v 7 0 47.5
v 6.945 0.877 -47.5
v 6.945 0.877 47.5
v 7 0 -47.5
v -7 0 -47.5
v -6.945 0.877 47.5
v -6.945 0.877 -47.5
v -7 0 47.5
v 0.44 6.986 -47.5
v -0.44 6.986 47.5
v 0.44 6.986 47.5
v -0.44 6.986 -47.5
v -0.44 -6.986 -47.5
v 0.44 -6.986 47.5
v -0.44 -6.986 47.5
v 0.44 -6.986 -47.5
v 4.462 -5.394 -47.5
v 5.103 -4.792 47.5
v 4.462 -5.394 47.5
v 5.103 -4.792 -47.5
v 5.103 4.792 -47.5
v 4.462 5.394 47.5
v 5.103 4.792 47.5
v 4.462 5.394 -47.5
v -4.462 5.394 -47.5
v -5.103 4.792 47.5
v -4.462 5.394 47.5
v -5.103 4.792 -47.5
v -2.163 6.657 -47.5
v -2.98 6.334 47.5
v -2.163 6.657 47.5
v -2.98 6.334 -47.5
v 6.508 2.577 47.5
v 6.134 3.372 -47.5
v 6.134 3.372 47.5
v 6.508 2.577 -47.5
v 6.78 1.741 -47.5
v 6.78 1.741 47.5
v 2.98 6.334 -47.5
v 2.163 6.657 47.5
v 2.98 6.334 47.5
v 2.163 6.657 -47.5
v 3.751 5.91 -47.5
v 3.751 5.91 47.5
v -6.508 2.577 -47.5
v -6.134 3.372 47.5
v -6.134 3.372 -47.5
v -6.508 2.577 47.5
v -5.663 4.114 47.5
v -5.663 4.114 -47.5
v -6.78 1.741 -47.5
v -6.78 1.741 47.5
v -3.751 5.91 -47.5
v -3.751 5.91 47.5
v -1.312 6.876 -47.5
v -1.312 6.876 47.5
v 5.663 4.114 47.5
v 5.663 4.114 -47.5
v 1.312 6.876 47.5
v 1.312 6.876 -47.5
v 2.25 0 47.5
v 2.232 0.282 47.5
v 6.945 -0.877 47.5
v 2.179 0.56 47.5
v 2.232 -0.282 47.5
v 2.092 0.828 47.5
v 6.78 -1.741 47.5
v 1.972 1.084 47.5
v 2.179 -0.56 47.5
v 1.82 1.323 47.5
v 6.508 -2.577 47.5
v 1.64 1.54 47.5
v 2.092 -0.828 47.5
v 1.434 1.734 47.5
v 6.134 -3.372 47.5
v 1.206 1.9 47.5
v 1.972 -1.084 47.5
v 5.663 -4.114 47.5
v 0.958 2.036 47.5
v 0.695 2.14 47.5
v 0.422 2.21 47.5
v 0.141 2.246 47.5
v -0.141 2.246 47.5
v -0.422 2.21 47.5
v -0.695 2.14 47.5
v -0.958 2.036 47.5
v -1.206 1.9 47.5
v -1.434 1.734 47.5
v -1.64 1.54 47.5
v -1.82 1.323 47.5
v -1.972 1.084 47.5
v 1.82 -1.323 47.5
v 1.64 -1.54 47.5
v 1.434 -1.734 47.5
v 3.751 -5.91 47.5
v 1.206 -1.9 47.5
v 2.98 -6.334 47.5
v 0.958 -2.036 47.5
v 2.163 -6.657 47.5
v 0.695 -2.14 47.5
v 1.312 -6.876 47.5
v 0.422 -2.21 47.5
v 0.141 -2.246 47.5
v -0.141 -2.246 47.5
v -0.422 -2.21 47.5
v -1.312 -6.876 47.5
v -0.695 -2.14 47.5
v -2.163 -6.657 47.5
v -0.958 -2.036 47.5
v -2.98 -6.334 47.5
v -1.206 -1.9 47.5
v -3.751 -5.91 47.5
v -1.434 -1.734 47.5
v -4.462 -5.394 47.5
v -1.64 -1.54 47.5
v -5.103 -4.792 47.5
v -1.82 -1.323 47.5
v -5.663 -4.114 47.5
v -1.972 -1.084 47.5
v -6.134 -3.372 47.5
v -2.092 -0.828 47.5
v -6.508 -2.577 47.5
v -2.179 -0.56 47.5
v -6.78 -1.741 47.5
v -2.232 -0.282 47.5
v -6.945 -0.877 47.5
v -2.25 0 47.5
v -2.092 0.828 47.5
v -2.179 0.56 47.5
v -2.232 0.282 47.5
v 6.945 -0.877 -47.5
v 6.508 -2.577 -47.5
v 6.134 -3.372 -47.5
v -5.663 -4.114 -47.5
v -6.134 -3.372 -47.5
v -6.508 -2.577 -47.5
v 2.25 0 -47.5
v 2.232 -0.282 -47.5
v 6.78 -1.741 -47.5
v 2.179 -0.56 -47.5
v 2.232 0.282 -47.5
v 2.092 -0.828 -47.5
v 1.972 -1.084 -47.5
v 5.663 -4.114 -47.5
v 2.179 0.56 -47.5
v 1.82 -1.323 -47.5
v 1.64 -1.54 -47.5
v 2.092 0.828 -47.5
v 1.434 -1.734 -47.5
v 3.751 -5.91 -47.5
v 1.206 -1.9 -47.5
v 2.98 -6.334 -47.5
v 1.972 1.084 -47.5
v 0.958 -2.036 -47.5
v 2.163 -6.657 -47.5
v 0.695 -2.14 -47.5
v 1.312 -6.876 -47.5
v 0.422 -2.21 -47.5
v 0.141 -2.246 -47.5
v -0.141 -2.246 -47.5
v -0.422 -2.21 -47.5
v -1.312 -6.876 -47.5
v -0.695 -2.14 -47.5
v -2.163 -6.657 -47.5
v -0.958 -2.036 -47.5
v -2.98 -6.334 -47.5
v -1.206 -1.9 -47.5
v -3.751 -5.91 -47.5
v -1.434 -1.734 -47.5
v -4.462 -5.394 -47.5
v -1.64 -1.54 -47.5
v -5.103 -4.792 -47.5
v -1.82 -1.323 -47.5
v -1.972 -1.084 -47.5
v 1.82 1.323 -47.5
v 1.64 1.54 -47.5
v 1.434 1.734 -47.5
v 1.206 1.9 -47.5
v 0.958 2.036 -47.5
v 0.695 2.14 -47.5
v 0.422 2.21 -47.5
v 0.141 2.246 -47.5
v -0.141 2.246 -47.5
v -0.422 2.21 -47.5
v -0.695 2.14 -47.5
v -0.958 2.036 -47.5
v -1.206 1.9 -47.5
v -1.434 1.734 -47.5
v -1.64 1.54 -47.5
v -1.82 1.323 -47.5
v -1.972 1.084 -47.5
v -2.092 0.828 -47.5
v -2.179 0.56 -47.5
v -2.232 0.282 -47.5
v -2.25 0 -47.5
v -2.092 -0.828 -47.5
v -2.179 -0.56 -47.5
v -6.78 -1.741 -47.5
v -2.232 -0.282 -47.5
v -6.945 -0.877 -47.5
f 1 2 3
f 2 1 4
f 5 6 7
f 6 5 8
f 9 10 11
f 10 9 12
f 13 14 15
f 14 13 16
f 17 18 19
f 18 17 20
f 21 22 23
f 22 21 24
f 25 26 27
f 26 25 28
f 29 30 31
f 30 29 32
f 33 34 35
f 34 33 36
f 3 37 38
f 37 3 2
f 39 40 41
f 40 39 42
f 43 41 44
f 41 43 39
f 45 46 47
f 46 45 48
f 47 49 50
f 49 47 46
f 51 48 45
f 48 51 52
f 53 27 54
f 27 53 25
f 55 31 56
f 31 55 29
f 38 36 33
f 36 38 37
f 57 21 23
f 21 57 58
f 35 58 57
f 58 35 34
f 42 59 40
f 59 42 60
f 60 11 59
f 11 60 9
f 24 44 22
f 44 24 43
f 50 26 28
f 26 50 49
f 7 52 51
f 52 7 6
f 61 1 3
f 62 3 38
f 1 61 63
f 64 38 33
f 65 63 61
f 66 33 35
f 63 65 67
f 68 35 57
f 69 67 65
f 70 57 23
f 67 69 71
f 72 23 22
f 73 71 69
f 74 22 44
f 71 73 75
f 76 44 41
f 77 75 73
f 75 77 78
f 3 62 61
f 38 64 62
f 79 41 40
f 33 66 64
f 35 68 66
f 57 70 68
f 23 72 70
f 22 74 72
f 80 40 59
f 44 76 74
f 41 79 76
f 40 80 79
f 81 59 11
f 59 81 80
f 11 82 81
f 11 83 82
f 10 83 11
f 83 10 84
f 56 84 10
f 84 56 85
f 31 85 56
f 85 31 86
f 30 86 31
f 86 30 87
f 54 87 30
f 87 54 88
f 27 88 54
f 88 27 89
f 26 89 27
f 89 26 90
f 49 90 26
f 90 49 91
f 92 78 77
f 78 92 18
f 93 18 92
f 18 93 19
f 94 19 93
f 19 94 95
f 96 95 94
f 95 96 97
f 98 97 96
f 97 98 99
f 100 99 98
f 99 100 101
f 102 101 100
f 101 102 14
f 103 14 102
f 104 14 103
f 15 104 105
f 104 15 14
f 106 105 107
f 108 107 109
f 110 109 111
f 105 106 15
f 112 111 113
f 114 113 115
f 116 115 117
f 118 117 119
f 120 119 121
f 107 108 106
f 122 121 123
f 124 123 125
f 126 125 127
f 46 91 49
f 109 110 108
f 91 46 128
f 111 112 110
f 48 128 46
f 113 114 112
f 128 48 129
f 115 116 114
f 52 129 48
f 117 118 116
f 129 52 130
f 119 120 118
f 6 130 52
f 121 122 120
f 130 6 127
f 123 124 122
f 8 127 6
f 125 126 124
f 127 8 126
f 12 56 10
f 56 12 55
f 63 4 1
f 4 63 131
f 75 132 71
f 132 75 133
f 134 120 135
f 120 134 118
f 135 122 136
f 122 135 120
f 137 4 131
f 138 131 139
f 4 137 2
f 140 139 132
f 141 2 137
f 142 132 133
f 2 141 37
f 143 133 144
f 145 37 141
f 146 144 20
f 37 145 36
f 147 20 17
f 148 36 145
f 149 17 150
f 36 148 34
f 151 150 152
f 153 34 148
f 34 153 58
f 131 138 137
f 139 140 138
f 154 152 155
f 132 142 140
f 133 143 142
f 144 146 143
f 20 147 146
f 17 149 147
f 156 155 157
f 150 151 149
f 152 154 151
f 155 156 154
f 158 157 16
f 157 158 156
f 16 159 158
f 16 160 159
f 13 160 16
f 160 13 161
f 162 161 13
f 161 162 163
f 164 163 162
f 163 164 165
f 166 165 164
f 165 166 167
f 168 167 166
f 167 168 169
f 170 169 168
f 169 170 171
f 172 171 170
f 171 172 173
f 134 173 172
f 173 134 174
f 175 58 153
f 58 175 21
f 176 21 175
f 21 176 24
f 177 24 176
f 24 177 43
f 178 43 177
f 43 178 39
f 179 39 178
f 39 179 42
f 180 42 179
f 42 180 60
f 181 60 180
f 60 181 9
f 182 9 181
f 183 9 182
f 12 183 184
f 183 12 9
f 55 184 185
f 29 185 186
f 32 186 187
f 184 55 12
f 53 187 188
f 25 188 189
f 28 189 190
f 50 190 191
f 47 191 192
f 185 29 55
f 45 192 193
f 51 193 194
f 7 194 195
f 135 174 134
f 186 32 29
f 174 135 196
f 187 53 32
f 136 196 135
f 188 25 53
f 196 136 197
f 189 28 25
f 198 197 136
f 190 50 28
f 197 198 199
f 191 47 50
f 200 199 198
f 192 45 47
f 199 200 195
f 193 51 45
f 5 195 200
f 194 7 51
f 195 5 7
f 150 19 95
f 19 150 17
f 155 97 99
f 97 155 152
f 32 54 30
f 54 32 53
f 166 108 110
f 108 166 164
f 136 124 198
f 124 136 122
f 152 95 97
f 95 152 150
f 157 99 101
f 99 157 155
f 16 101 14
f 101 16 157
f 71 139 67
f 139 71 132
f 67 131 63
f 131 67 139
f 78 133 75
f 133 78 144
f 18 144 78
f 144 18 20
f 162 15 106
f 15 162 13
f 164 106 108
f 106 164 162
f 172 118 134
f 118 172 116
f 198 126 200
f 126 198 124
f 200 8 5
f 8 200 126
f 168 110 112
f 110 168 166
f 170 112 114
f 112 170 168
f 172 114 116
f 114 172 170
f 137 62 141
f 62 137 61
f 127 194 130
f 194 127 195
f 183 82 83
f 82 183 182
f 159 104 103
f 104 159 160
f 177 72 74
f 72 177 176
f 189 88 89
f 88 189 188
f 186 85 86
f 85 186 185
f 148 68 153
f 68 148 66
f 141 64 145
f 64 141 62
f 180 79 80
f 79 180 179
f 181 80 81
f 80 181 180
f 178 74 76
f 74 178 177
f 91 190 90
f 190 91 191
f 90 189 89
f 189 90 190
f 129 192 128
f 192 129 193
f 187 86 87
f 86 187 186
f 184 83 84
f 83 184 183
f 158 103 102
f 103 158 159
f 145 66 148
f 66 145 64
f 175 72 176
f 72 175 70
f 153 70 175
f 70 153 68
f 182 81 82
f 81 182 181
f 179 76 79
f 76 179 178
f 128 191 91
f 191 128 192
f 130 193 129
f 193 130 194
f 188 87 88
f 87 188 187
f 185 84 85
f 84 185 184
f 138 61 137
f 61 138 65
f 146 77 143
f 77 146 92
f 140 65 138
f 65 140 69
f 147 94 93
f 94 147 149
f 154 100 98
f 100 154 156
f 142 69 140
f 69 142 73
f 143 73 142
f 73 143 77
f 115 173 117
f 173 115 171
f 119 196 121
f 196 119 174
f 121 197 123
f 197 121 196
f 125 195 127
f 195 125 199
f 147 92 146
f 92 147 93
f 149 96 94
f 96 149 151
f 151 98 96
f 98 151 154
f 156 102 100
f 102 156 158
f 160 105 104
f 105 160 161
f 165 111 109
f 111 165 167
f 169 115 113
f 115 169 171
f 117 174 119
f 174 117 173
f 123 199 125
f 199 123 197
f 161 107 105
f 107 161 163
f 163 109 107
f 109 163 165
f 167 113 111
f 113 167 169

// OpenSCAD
$fn = 50;


difference() {
	union() {
		translate(v = [0, 0, -47.5000000000]) {
			cylinder(h = 95, r = 7.0000000000);
		}
	}
	union() {
		translate(v = [0, 0, -100.0000000000]) {
			cylinder(h = 200, r = 2.2500000000);
		}
	}
}
